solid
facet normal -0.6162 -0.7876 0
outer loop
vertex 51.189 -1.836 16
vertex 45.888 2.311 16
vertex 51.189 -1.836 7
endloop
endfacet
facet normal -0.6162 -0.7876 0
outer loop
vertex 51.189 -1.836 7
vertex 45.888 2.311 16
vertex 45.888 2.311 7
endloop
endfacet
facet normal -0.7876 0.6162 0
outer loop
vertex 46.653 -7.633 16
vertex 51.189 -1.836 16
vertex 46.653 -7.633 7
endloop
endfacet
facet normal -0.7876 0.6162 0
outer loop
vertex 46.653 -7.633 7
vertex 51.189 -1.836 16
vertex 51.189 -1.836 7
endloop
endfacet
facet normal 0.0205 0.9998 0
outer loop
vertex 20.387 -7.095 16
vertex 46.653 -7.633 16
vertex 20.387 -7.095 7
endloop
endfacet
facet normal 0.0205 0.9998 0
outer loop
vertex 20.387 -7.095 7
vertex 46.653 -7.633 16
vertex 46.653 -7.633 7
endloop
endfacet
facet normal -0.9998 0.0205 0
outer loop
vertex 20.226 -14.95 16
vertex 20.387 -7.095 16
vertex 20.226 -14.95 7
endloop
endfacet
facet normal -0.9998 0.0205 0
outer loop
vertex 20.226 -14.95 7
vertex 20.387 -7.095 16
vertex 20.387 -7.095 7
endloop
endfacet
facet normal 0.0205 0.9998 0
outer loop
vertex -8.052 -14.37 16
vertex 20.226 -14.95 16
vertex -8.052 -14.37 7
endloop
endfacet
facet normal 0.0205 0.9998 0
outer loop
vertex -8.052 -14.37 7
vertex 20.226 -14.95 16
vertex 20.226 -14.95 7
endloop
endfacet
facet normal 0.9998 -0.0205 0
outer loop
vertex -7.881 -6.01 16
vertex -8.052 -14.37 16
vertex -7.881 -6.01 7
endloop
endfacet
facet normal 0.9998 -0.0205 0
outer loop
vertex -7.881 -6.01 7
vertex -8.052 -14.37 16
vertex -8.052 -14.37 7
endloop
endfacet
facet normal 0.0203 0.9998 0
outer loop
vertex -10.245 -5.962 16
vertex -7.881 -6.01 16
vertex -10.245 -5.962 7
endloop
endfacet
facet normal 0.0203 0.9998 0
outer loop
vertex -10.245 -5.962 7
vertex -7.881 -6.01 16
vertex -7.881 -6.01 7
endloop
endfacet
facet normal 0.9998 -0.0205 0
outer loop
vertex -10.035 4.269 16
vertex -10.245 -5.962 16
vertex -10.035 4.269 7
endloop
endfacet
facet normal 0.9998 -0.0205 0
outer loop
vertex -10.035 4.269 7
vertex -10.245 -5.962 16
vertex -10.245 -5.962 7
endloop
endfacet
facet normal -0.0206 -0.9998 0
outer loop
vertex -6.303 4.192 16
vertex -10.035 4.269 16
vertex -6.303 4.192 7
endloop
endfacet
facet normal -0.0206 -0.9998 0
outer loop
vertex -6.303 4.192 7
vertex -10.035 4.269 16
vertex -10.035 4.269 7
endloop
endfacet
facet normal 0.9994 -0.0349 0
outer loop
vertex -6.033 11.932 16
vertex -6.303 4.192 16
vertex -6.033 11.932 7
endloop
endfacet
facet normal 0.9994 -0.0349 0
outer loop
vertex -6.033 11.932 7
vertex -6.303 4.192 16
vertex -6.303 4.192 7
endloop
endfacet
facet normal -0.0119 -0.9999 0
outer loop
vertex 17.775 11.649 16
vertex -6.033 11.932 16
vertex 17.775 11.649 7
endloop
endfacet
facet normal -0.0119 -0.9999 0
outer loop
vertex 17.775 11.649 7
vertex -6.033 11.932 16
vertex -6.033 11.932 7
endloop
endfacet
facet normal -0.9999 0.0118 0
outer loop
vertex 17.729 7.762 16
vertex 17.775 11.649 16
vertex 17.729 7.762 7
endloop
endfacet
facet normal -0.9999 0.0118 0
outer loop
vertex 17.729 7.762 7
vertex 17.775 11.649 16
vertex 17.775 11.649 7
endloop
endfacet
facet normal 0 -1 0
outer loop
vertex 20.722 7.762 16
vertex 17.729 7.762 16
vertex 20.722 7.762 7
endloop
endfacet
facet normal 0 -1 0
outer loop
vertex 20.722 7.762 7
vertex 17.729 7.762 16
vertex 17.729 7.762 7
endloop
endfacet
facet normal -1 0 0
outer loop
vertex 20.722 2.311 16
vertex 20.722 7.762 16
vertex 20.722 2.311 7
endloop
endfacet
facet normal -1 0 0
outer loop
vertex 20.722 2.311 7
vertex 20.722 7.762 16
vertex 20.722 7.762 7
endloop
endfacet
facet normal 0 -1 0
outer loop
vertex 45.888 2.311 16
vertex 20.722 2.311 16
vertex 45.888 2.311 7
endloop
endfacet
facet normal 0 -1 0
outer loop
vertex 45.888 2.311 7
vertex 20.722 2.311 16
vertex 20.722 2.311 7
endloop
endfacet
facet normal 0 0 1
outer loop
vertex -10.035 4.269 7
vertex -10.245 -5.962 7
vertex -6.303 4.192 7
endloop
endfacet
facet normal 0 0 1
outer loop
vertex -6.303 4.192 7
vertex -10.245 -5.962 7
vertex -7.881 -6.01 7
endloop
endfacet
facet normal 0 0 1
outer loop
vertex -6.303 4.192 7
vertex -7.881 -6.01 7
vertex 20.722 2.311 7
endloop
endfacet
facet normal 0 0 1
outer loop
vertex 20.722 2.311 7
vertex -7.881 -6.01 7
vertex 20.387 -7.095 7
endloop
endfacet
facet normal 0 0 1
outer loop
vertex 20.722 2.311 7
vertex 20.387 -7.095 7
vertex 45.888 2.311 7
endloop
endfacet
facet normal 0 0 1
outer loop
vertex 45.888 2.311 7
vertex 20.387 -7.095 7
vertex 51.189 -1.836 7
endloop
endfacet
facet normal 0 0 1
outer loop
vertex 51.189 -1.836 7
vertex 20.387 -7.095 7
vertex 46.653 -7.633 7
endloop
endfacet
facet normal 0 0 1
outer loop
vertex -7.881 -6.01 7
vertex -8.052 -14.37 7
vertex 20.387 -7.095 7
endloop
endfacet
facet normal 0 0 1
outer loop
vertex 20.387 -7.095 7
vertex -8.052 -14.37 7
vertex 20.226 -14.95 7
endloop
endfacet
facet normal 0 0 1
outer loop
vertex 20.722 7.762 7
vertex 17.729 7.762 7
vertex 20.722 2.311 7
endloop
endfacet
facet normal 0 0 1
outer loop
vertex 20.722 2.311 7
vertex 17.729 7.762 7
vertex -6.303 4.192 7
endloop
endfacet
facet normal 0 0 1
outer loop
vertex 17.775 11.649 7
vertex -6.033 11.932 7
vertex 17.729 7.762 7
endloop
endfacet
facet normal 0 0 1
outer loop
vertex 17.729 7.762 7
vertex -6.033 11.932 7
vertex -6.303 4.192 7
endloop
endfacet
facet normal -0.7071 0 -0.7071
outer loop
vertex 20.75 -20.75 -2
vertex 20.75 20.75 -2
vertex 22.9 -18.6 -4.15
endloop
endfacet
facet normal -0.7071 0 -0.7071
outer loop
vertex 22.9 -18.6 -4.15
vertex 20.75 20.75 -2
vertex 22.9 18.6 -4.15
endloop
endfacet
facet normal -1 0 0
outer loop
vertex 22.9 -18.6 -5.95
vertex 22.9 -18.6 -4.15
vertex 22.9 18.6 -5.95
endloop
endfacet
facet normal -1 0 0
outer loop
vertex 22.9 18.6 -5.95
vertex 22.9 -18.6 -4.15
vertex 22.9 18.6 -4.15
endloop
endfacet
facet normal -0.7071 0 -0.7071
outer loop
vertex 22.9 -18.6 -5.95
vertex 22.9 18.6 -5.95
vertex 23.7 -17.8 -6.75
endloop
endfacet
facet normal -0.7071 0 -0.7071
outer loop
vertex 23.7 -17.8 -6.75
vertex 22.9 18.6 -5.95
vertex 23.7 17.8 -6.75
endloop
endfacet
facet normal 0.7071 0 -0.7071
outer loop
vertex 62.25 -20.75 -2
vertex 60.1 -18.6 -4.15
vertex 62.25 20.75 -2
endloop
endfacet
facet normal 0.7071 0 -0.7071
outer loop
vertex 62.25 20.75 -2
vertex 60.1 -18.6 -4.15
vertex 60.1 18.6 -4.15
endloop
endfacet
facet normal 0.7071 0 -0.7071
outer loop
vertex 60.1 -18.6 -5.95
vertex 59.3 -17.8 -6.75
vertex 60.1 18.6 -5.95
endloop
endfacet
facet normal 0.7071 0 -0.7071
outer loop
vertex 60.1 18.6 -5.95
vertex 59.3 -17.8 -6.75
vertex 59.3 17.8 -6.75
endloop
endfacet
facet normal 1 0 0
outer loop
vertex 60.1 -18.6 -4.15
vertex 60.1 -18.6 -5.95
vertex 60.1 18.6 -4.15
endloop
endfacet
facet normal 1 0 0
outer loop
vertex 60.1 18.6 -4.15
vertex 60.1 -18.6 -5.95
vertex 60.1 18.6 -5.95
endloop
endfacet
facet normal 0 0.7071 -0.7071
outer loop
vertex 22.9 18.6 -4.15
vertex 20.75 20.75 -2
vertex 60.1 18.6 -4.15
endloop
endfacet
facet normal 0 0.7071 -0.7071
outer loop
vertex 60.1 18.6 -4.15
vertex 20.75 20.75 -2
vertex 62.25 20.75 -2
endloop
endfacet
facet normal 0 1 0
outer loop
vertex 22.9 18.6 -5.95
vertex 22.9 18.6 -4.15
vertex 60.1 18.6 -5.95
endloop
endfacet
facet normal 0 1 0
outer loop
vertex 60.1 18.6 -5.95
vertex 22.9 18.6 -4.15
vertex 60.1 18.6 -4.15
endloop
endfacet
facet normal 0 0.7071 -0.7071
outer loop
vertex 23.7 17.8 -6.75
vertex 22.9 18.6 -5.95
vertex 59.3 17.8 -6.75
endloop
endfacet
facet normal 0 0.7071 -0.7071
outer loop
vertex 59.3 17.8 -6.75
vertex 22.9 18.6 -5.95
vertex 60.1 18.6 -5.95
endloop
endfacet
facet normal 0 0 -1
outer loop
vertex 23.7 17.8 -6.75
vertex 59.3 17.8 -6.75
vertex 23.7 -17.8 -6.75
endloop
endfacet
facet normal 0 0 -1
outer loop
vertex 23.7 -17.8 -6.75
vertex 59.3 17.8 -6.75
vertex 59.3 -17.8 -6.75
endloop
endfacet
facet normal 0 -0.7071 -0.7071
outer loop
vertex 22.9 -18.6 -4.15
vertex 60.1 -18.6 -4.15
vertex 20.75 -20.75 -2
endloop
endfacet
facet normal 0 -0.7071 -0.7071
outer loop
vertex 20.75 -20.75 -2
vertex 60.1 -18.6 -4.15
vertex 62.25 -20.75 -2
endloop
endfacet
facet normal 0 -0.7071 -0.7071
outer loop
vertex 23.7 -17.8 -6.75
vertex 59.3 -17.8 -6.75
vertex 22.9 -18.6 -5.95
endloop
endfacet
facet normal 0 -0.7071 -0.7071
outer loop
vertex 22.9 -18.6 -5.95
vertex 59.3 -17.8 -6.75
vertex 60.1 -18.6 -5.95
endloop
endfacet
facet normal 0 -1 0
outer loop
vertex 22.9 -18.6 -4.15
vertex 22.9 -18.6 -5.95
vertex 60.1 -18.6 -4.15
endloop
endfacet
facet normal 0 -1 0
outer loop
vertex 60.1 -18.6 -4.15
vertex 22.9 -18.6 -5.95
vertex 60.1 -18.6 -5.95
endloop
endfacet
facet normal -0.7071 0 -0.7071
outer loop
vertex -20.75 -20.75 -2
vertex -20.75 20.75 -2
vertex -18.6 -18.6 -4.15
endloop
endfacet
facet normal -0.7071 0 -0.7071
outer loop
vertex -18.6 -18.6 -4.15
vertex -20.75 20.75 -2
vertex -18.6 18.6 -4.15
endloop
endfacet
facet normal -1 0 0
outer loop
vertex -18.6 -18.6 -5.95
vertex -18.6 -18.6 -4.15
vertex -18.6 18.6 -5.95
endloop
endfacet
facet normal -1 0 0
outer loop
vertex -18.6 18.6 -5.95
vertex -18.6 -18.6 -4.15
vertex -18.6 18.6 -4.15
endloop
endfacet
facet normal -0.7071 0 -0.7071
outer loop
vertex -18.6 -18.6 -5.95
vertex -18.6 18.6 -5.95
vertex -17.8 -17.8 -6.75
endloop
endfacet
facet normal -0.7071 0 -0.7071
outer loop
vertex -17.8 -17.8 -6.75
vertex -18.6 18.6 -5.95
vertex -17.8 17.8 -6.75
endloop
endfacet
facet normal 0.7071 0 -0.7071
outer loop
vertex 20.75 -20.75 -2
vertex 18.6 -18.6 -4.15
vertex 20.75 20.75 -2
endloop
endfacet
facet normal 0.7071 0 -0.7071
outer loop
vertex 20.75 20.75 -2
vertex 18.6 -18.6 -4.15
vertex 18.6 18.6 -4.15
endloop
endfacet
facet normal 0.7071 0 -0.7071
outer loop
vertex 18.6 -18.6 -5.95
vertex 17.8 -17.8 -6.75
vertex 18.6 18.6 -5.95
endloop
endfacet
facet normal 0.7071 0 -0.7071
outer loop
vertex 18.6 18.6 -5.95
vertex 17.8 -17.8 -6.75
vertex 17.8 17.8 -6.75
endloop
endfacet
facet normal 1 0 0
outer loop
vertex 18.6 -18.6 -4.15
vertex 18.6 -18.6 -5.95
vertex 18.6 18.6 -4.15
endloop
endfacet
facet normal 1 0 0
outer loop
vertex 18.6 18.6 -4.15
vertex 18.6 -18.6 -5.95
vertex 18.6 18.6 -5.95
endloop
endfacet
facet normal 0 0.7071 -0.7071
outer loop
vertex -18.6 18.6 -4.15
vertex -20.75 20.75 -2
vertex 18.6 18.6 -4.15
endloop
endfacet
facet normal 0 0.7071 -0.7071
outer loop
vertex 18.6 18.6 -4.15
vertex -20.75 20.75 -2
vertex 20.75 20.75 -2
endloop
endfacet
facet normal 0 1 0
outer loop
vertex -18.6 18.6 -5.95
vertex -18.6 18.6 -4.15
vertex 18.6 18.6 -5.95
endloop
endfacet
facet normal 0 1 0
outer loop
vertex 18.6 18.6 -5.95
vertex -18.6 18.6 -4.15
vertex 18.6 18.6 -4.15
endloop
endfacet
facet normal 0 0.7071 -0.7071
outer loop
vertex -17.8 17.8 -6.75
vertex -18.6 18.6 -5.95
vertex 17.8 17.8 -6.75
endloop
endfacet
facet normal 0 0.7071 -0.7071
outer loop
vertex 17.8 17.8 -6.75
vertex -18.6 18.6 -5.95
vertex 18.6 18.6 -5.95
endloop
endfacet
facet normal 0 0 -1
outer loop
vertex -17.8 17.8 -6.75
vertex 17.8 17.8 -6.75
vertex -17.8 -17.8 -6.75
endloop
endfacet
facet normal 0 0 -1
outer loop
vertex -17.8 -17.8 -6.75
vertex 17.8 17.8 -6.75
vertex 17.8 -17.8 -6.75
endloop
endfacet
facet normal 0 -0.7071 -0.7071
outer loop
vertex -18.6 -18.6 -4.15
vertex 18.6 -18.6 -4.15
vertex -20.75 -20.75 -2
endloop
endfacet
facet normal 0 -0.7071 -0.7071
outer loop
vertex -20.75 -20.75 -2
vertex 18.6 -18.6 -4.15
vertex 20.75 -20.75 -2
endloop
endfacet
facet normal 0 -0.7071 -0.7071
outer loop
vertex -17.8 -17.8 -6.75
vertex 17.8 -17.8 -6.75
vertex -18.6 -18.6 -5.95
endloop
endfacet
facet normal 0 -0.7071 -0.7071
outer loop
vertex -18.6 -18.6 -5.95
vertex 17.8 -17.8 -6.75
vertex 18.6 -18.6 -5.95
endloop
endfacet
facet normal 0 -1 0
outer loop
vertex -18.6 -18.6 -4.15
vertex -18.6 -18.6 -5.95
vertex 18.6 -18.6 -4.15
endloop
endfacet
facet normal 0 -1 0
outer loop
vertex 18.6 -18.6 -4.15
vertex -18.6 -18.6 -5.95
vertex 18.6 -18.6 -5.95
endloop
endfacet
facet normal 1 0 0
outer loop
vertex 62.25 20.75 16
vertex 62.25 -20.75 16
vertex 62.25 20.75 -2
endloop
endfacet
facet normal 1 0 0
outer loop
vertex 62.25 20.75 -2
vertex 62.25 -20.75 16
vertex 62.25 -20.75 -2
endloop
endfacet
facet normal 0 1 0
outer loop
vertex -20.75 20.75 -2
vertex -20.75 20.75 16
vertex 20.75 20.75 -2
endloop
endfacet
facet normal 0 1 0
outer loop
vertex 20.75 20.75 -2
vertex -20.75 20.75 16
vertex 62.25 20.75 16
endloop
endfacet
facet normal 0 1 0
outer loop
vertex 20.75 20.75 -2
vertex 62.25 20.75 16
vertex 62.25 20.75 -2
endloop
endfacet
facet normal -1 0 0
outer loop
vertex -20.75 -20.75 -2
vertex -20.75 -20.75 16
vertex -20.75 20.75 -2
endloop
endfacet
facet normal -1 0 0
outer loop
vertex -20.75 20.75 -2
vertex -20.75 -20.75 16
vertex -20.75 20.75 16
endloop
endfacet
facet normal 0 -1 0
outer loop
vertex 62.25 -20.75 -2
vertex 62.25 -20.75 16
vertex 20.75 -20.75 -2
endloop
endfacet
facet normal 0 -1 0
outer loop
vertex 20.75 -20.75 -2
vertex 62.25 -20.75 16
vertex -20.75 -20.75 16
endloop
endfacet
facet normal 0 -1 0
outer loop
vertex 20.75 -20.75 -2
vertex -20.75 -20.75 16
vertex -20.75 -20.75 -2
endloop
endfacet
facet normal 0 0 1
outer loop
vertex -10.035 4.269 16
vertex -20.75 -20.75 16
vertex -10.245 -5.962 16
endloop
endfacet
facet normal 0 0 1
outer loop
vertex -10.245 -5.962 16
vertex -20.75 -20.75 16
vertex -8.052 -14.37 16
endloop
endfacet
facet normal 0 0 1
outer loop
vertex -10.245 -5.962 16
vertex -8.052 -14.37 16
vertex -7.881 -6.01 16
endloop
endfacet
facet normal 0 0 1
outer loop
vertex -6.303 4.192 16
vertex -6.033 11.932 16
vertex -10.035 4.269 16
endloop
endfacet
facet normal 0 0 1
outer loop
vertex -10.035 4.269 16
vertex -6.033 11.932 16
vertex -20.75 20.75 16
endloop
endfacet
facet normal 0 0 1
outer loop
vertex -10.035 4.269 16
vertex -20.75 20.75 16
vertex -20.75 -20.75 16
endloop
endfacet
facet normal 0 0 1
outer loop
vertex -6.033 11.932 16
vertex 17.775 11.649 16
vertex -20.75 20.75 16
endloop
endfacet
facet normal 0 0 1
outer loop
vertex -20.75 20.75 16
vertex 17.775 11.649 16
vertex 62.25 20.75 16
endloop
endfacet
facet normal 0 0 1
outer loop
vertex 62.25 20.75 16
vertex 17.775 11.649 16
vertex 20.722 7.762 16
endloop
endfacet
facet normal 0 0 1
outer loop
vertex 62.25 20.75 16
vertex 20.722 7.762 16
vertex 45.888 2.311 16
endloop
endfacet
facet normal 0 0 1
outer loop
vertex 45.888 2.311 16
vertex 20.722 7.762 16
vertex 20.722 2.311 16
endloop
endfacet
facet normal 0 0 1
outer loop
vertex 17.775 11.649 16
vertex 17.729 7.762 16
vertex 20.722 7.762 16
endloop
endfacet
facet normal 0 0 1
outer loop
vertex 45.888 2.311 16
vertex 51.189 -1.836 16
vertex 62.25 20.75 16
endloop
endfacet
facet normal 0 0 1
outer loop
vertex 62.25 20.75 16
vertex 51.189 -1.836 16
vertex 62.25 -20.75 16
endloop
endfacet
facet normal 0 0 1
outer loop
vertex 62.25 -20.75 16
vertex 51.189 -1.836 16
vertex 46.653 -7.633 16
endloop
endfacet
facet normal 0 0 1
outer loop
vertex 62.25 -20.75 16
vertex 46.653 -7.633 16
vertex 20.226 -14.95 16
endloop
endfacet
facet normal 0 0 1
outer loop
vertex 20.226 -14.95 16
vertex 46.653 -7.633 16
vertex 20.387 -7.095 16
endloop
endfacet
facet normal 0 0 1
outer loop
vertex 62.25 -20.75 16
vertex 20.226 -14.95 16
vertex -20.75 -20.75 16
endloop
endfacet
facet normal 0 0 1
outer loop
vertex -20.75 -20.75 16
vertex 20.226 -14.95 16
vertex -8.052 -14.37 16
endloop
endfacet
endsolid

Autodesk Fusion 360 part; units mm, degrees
sketch "Sketch1" plane through (0, 0, 0) normal (0, 0, 1) x (1, 0, 0)
  line L0 (20.75, 20.75) -> (-20.75, 20.75)
  line L1 (-20.75, 20.75) -> (-20.75, -20.75)
  line L2 (-20.75, -20.75) -> (20.75, -20.75)
  line L3 (20.75, -20.75) -> (20.75, 20.75)
  line L4 (20.75, 20.75) -> (-20.75, -20.75) construction
  line L5 (-20.75, 20.75) -> (20.75, -20.75) construction
  dimension "d1" = 41.5
  dimension "d2" = 41.5
extrude "Extrude1" add sketch "Sketch1" along normal blind 7 makes body 1
sketch "Sketch2" plane through (0, 20.75, 0) normal (0, 1, 0) x (-1, 0, 0)
  line L0 (-20.75, 0) -> (20.75, 0)
  line L1 (20.75, 0) -> (20.75, 7)
  line L2 (20.75, 7) -> (-20.75, 7)
  line L3 (-20.75, 7) -> (-20.75, 0)
  line L4 (18.6, 0.8) -> (18.6, 2.6)
  line L5 (18.6, 2.6) -> (20.75, 4.75)
  line L6 (17.8, 0) -> (18.6, 0.8)
  line L7 (-18.6, 0.9534) -> (-18.6, 2.7534)
  line L8 (-18.6, 2.7534) -> (-20.75, 4.9034)
  line L9 (-17.8, 0) -> (-18.6, 0.9534)
  line L10 (-20.75, 4.9034) -> (-20.75, 0)
  line L11 (-20.75, 0) -> (-17.8, 0)
  line L12 (20.75, 4.75) -> (20.75, 0)
  line L13 (17.8, 0) -> (20.75, 0)
sketch "Sketch3" plane through (-20.75, 0, 0) normal (-1, 0, 0) x (0, -1, 0)
  line L0 (20.75, 7) -> (-20.75, 7)
  line L1 (-20.75, 0) -> (-17.8, 0)
  line L2 (-17.8, 0) -> (-18.6, 0)
  line L3 (-17.8, 0) -> (-18.6, 0.8)
  line L4 (-17.8, 0) -> (-12.38, 0) construction
  line L5 (-18.6, 0.8) -> (-18.6, 2.6)
  line L6 (-18.6, 2.6) -> (-20.75, 4.75)
  line L7 (17.8, 0) -> (18.6, 0.8)
  line L8 (18.6, 0.8) -> (18.6, 2.6)
  line L9 (18.6, 2.6) -> (20.75, 4.75)
  line L10 (20.75, 4.75) -> (20.75, 0)
  line L11 (20.75, 0) -> (17.8, 0)
  line L12 (-20.75, 4.75) -> (-20.75, 0)
sketch "Sketch4" plane through (0, -20.75, 0) normal (0, -1, 0) x (1, 0, 0)
  line L0 (-20.75, 0) -> (20.75, 0)
  line L1 (20.75, 0) -> (20.75, 7)
  line L2 (20.75, 7) -> (-20.75, 7)
  line L3 (-20.75, 7) -> (-20.75, 0)
  line L4 (-20.75, 0) -> (-17.8, 0)
  line L5 (-17.8, 0) -> (-18.6, 0)
  line L6 (-17.8, 0) -> (-18.6, 0.8)
  line L7 (-17.8, 0) -> (-12.5744, 0) construction
  line L8 (-18.6, 0.8) -> (-18.6, 2.6)
  line L9 (-18.6, 2.6) -> (-20.75, 4.75)
  line L10 (20.75, 0) -> (17.8, 0)
  line L11 (17.8, 0) -> (18.6, 0)
  line L12 (17.8, 0) -> (18.6, 0.8)
  line L13 (18.6, 0.8) -> (18.6, 2.6)
  line L14 (18.6, 2.6) -> (20.75, 4.75)
sketch "Sketch5" plane through (20.75, 0, 0) normal (1, 0, 0) x (0, 1, 0)
  line L0 (-20.75, 0) -> (20.75, 0)
  line L1 (20.75, 0) -> (20.75, 7)
  line L2 (20.75, 7) -> (-20.75, 7)
  line L3 (-20.75, 7) -> (-20.75, 0)
  line L4 (-20.75, 0) -> (-17.8, 0)
  line L5 (-17.8, 0) -> (-18.6, 0)
  line L6 (-17.8, 0) -> (-18.6, 0.8)
  line L7 (-18.6, 0.8) -> (-18.6, 2.6)
  line L8 (-18.6, 2.6) -> (-20.75, 4.75)
  line L9 (20.75, 0) -> (17.8, 0)
  line L10 (17.8, 0) -> (18.6, 0)
  line L11 (18.6, 0.8) -> (18.6, 2.6)
  line L12 (18.6, 2.6) -> (20.75, 4.75)
  line L13 (17.8, 0) -> (18.6, 0.8)
extrude "Extrude2" cut sketch "Sketch5" along normal mid plane 100 contours L0 L3 L4 L5 L6 L7 L8 | L0 L1 L9 L10 L11 L12 L13 bodies 1
extrude "Extrude3" cut sketch "Sketch4" along normal mid plane 100 contours L0 L3 L4 L5 L6 L8 L9 | L0 L1 L10 L11 L12 L13 L14 bodies 1
copy_body "CopyPasteBodies1" bodies 1 makes body 2
move_body "Move1" bodies 2 to x (1, 0, 0) y (0, 1, 0) z (0, 0, 1) at (41.5, 0, 0)
combine "Combine1" operation add target body 1 tool bodies 2
sketch "Sketch6" plane through (0, 0, 7) normal (0, 0, 1) x (-1, 0, 0)
  line L0 (-62.25, -20.75) -> (20.75, -20.75)
  line L1 (20.75, -20.75) -> (20.75, 20.75)
  line L2 (20.75, 20.75) -> (-62.25, 20.75)
  line L3 (-62.25, 20.75) -> (-62.25, -20.75)
  line L4 (10.0352, -4.2687) -> (6.3028, -4.1922)
  line L5 (6.3028, -4.1922) -> (6.0326, -11.9325)
  line L6 (6.0326, -11.9325) -> (-17.7748, -11.649)
  line L7 (-17.7748, -11.649) -> (-17.7285, -7.7618)
  line L8 (-17.7285, -7.7618) -> (-20.7225, -7.7618)
  line L9 (-20.7225, -7.7618) -> (-20.7225, -2.3106)
  line L10 (-20.7225, -2.3106) -> (-45.8884, -2.3106)
  line L11 (-45.8884, -2.3106) -> (-51.1886, 1.836)
  line L12 (-51.1886, 1.836) -> (-46.6533, 7.6332)
  line L13 (-46.6533, 7.6332) -> (-20.3871, 7.0947)
  line L14 (-20.3871, 7.0947) -> (-20.2261, 14.9498)
  line L15 (-20.2261, 14.9498) -> (8.0521, 14.37)
  line L16 (8.0521, 14.37) -> (7.8807, 6.0104)
  line L17 (7.8807, 6.0104) -> (10.245, 5.9619)
  line L18 (10.245, 5.9619) -> (10.0352, -4.2687)
sketch "Sketch7" plane through (0, 0, 0) normal (0, 0, 1) x (1, 0, 0)
  line L0 (-20.75, 20.75) -> (62.25, 20.75)
  line L1 (62.25, 20.75) -> (62.25, -20.75)
  line L2 (62.25, -20.75) -> (-20.75, -20.75)
  line L3 (-20.75, -20.75) -> (-20.75, 20.75)
move_body "Move2" bodies 1 to x (1, 0, 0) y (0, 1, 0) z (0, 0, 1) at (0, 0, -6.75)
extrude "Extrude4" add sketch "Sketch7" along normal blind 16 separate body makes body 3
combine "Combine2" operation add target body 3 tool bodies 1
extrude "Extrude5" cut sketch "Sketch6" along normal blind 16 contours L4 L5 L6 L7 L8 L9 L10 L11 L12 L13 L14 L15 L16 L17 L18 bodies 3
